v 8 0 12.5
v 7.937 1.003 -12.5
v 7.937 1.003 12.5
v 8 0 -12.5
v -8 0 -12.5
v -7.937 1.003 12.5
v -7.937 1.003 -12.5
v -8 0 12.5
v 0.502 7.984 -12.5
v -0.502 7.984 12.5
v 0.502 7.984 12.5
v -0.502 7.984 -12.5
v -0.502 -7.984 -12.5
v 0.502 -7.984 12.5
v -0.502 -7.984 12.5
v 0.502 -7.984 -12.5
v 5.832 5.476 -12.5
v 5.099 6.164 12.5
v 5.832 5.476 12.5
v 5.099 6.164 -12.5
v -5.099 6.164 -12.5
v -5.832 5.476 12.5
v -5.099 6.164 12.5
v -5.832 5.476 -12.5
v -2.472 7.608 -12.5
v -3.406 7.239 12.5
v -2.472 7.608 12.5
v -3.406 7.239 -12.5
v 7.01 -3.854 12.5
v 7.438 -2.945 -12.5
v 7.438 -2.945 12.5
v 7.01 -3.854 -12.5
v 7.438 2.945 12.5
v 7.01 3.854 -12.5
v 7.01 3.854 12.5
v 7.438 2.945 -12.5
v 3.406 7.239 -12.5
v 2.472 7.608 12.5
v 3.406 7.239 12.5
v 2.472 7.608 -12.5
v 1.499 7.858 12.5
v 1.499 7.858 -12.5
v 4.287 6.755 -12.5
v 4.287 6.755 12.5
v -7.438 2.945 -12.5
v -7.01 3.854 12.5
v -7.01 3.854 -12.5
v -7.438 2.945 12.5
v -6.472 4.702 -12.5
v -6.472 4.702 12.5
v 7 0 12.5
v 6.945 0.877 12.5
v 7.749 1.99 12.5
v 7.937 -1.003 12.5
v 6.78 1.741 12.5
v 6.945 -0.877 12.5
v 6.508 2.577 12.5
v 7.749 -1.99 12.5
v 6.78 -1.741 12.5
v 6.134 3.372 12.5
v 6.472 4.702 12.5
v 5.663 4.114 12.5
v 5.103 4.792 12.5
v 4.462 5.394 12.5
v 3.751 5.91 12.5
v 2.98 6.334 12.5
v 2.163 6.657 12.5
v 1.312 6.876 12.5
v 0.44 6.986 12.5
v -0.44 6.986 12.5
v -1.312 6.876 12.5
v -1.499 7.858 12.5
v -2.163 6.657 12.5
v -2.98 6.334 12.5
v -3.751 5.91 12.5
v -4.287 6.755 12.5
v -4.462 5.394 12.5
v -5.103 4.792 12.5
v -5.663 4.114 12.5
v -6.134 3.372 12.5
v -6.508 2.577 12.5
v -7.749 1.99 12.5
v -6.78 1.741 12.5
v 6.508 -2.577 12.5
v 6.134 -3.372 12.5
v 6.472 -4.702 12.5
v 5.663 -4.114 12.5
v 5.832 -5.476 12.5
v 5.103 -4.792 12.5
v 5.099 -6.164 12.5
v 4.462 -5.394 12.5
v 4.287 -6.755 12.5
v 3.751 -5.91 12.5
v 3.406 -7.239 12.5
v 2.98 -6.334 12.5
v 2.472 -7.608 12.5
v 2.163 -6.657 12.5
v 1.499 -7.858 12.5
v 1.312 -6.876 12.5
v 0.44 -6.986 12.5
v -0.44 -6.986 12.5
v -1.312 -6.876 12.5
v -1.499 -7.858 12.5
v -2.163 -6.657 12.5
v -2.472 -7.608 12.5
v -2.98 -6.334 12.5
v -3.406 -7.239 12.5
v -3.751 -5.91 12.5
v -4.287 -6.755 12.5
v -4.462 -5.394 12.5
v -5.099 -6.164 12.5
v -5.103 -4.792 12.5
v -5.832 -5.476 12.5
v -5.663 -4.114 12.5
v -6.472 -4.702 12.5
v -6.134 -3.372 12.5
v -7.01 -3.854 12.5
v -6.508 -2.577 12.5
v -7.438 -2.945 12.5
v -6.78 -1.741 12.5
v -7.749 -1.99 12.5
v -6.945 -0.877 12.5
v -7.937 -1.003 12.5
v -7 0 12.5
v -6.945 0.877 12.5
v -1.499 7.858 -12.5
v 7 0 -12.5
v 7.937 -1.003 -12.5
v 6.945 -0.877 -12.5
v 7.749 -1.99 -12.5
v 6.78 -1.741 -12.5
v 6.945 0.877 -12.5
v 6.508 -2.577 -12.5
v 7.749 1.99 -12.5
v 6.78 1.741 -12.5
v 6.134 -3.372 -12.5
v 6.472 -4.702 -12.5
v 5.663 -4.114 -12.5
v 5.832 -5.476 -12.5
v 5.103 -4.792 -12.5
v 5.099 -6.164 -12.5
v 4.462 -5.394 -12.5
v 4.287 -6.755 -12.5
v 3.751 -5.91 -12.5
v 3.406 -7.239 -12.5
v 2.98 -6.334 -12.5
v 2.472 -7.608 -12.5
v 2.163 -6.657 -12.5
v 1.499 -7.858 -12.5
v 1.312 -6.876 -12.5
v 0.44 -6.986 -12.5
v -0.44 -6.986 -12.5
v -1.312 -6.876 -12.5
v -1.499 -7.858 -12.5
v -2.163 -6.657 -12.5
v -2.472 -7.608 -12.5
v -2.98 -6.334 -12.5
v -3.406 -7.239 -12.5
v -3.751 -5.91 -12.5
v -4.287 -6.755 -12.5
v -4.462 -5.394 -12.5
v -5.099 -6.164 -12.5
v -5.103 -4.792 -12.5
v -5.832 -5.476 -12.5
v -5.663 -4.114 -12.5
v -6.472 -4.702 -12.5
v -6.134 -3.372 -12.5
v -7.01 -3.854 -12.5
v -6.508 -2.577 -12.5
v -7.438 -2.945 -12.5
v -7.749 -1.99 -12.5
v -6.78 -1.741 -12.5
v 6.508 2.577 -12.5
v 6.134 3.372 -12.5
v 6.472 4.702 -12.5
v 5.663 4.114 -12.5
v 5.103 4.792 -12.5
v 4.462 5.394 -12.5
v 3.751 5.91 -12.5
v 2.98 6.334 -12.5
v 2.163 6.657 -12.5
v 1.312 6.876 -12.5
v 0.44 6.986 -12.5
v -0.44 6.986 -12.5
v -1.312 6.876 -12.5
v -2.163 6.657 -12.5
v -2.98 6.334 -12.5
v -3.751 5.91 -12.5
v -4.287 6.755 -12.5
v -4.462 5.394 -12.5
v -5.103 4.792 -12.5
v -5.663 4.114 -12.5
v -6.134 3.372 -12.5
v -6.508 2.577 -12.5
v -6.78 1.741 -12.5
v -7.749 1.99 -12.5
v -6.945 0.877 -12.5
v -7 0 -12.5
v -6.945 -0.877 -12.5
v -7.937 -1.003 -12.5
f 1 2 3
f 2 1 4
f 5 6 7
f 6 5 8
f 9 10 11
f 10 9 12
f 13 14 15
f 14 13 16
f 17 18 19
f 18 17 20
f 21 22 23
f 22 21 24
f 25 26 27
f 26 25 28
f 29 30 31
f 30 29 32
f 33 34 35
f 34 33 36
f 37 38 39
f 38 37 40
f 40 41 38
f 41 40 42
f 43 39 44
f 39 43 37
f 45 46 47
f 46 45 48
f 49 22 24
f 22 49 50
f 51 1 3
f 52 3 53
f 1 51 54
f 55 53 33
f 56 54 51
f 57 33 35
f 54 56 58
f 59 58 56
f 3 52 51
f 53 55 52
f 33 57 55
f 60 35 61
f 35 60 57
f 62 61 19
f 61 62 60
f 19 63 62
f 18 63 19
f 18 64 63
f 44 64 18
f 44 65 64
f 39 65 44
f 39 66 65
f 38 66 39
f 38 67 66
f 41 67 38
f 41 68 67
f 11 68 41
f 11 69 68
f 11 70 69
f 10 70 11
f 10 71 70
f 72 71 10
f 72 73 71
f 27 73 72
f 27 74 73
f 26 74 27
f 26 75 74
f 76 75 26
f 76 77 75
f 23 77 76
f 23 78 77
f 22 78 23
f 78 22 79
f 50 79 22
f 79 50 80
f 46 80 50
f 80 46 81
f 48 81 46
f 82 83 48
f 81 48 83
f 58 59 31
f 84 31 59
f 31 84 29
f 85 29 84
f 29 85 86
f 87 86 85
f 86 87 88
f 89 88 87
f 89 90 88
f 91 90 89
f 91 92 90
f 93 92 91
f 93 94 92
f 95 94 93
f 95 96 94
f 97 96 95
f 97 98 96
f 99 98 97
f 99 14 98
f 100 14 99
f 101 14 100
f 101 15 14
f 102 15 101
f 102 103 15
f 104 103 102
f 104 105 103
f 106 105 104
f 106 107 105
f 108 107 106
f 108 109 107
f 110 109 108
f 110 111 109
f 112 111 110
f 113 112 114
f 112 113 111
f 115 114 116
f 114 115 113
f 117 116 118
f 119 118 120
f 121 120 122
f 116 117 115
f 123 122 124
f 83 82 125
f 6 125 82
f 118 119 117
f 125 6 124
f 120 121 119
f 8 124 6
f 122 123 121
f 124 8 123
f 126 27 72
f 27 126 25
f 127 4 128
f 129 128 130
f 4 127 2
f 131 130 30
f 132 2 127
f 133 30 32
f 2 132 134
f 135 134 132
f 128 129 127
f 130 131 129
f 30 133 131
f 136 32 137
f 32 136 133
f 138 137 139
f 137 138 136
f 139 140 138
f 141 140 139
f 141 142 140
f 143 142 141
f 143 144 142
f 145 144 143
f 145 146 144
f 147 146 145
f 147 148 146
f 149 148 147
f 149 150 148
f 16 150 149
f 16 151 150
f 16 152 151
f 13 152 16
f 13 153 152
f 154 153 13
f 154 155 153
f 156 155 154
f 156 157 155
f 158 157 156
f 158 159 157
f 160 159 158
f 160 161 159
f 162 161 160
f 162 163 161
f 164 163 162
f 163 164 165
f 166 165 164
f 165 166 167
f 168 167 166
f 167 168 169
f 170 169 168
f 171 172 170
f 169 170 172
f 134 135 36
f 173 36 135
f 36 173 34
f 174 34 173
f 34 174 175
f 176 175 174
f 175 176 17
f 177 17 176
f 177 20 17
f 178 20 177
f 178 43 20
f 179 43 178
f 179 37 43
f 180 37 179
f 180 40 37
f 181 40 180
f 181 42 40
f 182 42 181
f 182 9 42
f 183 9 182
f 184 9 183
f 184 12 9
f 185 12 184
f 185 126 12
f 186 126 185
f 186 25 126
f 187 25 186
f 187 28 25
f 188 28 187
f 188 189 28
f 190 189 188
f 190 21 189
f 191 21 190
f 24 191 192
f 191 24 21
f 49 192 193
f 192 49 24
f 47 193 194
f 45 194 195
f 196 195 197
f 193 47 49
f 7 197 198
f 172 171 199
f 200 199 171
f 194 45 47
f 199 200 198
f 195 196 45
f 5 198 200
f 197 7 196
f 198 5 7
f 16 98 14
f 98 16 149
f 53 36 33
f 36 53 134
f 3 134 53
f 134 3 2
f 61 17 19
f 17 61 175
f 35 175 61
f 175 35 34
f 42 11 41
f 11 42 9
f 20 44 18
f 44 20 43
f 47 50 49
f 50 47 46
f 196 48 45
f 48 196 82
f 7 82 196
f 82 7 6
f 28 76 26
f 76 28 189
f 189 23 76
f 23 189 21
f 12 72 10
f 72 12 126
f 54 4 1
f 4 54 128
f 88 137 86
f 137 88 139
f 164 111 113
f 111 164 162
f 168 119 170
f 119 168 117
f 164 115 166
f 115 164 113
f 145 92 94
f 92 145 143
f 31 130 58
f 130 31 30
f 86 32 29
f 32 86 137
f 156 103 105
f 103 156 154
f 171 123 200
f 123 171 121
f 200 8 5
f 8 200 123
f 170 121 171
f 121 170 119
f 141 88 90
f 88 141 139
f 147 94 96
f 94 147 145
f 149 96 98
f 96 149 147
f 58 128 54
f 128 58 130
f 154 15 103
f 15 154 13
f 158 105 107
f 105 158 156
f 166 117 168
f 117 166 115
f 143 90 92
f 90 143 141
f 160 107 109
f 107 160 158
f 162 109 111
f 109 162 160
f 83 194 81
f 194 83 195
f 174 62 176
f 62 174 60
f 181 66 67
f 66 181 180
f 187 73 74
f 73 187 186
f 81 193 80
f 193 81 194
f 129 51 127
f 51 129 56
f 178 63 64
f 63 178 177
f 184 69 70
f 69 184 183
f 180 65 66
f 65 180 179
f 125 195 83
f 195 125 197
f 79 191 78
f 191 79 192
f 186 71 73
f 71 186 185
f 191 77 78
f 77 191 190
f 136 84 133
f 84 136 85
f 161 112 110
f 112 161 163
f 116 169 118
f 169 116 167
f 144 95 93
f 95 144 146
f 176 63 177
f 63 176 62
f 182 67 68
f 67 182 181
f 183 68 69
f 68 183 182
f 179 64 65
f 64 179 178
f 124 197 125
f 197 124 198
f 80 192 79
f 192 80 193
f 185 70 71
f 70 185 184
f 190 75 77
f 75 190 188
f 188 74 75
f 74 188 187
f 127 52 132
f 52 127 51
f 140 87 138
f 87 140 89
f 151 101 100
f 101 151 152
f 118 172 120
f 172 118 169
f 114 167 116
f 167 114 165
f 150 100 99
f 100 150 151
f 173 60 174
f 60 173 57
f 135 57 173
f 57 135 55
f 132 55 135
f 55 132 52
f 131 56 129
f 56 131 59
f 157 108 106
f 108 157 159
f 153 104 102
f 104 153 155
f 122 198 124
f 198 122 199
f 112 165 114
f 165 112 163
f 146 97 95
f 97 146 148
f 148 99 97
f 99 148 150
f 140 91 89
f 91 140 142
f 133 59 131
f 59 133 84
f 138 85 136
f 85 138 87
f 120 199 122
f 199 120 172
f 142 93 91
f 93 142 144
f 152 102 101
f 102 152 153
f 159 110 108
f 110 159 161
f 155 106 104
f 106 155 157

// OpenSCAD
$fn = 50;


difference() {
	union() {
		translate(v = [0, 0, -12.5000000000]) {
			cylinder(h = 25, r = 8.0000000000);
		}
	}
	union() {
		translate(v = [0, 0, -100.0000000000]) {
			cylinder(h = 200, r = 7);
		}
	}
}
